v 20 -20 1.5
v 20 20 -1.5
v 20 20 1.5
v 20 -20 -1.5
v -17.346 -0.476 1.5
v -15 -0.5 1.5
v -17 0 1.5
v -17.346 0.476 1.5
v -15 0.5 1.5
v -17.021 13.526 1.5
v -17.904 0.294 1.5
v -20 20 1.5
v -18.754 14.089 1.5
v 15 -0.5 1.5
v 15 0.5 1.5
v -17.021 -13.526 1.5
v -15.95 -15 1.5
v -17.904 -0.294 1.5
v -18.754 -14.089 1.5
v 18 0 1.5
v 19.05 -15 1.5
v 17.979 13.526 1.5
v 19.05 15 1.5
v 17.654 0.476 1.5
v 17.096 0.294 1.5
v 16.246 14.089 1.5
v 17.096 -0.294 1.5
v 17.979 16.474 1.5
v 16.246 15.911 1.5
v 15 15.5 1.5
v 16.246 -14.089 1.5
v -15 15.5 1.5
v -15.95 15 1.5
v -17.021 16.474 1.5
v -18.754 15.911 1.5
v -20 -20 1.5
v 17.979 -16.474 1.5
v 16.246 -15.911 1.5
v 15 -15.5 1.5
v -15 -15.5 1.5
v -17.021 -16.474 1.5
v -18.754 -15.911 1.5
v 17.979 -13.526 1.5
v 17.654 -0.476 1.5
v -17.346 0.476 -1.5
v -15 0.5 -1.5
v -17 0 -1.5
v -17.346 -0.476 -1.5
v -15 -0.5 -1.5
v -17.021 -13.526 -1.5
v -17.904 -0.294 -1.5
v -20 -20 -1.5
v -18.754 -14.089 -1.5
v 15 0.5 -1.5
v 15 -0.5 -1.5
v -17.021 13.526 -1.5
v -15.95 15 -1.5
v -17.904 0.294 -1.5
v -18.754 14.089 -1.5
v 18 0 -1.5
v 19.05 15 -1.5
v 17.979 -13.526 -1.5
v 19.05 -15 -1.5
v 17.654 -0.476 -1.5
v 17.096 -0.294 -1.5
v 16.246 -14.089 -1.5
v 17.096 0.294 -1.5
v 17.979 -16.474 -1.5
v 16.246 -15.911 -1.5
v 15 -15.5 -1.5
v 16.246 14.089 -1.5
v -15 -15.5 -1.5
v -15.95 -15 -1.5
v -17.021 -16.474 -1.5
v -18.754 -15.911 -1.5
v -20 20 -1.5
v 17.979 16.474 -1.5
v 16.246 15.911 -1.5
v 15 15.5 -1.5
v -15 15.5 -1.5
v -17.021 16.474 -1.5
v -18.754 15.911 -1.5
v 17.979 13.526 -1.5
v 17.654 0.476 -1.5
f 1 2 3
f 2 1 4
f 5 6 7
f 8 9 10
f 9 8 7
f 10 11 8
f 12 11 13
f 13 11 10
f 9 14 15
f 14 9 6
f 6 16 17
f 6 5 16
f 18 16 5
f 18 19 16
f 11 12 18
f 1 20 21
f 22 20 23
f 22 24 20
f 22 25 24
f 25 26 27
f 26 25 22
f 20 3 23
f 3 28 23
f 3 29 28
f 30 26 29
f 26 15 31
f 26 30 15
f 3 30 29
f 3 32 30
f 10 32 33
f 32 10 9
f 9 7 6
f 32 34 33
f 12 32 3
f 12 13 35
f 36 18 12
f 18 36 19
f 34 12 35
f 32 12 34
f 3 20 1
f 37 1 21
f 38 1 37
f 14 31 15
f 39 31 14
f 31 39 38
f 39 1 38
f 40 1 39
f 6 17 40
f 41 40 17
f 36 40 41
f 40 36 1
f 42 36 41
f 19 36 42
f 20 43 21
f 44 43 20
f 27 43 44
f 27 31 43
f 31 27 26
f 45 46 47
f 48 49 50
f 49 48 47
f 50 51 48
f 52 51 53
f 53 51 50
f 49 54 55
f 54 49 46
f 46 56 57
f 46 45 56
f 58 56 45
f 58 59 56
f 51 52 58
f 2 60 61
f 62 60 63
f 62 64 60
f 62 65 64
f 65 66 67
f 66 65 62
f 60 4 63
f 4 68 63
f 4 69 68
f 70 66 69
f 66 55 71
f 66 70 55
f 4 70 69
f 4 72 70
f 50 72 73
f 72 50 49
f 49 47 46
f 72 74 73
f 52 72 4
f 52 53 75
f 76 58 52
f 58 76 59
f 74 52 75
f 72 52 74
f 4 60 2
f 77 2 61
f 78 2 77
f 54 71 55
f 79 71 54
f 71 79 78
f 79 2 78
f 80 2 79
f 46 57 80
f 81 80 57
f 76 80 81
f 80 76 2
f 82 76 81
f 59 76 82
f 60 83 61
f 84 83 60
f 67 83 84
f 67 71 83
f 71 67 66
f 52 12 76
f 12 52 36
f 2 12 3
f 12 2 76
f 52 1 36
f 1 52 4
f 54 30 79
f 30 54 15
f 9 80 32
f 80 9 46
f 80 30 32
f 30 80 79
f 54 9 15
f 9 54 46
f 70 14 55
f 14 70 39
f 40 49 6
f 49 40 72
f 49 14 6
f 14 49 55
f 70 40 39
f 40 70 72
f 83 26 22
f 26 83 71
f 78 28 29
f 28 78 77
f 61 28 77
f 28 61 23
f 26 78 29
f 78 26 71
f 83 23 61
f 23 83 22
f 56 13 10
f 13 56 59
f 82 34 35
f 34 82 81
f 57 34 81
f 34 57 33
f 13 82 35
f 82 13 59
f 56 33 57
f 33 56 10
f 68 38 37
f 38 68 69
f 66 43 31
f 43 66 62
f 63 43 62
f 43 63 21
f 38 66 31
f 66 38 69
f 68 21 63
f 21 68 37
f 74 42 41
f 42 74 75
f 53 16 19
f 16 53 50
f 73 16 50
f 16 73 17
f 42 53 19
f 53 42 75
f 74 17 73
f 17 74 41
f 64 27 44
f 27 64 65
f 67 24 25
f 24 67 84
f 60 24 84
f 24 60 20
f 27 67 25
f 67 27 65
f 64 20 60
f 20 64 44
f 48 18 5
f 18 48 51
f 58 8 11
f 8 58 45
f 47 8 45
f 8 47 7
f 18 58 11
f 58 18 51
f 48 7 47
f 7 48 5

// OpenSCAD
//substrate holder casing

module casing(x1,y1,z1,b,s_d){
    
    x=30;
    y=30;
    
    difference(){
    difference(){
    difference(){
    difference(){
    difference(){
    difference(){
    difference(){
    difference(){
        
    cube([x1,y1,z1], center = true);
        translate([0,(y/4+b/2),0])
       cube([x,y/2,z1+10], center = true);}
       
       translate([0,-(y/4+b/2),0])
       cube([x,y/2,z1+10], center = true);}
        
        
    
     //bracket screw holes
             translate([17.5,y/2,0])
             cylinder(r=s_d/2, h=z1+10, center =true);}
             
             translate([-17.5,y/2,z1/2])
             cylinder(r=s_d/2, h=z1+10, center =true);}
             
             translate([17.5,-(y/2),z1/2])
             cylinder(r=s_d/2, h=z1+10, center =true);}
             
             translate([-17.5,-(y/2),z1/2])
             cylinder(r=s_d/2, h=z1+10, center =true);}
    
    
    //bracket guide pins
             translate([17.5,0,0])
             cylinder(r=0.5, h=z1+10, center =true);}
             translate([-17.5,0,0])
             cylinder(r=0.5, h=z1+10, center =true);}
    
    
    
    
}

casing(40,40,3,1,3.1);
